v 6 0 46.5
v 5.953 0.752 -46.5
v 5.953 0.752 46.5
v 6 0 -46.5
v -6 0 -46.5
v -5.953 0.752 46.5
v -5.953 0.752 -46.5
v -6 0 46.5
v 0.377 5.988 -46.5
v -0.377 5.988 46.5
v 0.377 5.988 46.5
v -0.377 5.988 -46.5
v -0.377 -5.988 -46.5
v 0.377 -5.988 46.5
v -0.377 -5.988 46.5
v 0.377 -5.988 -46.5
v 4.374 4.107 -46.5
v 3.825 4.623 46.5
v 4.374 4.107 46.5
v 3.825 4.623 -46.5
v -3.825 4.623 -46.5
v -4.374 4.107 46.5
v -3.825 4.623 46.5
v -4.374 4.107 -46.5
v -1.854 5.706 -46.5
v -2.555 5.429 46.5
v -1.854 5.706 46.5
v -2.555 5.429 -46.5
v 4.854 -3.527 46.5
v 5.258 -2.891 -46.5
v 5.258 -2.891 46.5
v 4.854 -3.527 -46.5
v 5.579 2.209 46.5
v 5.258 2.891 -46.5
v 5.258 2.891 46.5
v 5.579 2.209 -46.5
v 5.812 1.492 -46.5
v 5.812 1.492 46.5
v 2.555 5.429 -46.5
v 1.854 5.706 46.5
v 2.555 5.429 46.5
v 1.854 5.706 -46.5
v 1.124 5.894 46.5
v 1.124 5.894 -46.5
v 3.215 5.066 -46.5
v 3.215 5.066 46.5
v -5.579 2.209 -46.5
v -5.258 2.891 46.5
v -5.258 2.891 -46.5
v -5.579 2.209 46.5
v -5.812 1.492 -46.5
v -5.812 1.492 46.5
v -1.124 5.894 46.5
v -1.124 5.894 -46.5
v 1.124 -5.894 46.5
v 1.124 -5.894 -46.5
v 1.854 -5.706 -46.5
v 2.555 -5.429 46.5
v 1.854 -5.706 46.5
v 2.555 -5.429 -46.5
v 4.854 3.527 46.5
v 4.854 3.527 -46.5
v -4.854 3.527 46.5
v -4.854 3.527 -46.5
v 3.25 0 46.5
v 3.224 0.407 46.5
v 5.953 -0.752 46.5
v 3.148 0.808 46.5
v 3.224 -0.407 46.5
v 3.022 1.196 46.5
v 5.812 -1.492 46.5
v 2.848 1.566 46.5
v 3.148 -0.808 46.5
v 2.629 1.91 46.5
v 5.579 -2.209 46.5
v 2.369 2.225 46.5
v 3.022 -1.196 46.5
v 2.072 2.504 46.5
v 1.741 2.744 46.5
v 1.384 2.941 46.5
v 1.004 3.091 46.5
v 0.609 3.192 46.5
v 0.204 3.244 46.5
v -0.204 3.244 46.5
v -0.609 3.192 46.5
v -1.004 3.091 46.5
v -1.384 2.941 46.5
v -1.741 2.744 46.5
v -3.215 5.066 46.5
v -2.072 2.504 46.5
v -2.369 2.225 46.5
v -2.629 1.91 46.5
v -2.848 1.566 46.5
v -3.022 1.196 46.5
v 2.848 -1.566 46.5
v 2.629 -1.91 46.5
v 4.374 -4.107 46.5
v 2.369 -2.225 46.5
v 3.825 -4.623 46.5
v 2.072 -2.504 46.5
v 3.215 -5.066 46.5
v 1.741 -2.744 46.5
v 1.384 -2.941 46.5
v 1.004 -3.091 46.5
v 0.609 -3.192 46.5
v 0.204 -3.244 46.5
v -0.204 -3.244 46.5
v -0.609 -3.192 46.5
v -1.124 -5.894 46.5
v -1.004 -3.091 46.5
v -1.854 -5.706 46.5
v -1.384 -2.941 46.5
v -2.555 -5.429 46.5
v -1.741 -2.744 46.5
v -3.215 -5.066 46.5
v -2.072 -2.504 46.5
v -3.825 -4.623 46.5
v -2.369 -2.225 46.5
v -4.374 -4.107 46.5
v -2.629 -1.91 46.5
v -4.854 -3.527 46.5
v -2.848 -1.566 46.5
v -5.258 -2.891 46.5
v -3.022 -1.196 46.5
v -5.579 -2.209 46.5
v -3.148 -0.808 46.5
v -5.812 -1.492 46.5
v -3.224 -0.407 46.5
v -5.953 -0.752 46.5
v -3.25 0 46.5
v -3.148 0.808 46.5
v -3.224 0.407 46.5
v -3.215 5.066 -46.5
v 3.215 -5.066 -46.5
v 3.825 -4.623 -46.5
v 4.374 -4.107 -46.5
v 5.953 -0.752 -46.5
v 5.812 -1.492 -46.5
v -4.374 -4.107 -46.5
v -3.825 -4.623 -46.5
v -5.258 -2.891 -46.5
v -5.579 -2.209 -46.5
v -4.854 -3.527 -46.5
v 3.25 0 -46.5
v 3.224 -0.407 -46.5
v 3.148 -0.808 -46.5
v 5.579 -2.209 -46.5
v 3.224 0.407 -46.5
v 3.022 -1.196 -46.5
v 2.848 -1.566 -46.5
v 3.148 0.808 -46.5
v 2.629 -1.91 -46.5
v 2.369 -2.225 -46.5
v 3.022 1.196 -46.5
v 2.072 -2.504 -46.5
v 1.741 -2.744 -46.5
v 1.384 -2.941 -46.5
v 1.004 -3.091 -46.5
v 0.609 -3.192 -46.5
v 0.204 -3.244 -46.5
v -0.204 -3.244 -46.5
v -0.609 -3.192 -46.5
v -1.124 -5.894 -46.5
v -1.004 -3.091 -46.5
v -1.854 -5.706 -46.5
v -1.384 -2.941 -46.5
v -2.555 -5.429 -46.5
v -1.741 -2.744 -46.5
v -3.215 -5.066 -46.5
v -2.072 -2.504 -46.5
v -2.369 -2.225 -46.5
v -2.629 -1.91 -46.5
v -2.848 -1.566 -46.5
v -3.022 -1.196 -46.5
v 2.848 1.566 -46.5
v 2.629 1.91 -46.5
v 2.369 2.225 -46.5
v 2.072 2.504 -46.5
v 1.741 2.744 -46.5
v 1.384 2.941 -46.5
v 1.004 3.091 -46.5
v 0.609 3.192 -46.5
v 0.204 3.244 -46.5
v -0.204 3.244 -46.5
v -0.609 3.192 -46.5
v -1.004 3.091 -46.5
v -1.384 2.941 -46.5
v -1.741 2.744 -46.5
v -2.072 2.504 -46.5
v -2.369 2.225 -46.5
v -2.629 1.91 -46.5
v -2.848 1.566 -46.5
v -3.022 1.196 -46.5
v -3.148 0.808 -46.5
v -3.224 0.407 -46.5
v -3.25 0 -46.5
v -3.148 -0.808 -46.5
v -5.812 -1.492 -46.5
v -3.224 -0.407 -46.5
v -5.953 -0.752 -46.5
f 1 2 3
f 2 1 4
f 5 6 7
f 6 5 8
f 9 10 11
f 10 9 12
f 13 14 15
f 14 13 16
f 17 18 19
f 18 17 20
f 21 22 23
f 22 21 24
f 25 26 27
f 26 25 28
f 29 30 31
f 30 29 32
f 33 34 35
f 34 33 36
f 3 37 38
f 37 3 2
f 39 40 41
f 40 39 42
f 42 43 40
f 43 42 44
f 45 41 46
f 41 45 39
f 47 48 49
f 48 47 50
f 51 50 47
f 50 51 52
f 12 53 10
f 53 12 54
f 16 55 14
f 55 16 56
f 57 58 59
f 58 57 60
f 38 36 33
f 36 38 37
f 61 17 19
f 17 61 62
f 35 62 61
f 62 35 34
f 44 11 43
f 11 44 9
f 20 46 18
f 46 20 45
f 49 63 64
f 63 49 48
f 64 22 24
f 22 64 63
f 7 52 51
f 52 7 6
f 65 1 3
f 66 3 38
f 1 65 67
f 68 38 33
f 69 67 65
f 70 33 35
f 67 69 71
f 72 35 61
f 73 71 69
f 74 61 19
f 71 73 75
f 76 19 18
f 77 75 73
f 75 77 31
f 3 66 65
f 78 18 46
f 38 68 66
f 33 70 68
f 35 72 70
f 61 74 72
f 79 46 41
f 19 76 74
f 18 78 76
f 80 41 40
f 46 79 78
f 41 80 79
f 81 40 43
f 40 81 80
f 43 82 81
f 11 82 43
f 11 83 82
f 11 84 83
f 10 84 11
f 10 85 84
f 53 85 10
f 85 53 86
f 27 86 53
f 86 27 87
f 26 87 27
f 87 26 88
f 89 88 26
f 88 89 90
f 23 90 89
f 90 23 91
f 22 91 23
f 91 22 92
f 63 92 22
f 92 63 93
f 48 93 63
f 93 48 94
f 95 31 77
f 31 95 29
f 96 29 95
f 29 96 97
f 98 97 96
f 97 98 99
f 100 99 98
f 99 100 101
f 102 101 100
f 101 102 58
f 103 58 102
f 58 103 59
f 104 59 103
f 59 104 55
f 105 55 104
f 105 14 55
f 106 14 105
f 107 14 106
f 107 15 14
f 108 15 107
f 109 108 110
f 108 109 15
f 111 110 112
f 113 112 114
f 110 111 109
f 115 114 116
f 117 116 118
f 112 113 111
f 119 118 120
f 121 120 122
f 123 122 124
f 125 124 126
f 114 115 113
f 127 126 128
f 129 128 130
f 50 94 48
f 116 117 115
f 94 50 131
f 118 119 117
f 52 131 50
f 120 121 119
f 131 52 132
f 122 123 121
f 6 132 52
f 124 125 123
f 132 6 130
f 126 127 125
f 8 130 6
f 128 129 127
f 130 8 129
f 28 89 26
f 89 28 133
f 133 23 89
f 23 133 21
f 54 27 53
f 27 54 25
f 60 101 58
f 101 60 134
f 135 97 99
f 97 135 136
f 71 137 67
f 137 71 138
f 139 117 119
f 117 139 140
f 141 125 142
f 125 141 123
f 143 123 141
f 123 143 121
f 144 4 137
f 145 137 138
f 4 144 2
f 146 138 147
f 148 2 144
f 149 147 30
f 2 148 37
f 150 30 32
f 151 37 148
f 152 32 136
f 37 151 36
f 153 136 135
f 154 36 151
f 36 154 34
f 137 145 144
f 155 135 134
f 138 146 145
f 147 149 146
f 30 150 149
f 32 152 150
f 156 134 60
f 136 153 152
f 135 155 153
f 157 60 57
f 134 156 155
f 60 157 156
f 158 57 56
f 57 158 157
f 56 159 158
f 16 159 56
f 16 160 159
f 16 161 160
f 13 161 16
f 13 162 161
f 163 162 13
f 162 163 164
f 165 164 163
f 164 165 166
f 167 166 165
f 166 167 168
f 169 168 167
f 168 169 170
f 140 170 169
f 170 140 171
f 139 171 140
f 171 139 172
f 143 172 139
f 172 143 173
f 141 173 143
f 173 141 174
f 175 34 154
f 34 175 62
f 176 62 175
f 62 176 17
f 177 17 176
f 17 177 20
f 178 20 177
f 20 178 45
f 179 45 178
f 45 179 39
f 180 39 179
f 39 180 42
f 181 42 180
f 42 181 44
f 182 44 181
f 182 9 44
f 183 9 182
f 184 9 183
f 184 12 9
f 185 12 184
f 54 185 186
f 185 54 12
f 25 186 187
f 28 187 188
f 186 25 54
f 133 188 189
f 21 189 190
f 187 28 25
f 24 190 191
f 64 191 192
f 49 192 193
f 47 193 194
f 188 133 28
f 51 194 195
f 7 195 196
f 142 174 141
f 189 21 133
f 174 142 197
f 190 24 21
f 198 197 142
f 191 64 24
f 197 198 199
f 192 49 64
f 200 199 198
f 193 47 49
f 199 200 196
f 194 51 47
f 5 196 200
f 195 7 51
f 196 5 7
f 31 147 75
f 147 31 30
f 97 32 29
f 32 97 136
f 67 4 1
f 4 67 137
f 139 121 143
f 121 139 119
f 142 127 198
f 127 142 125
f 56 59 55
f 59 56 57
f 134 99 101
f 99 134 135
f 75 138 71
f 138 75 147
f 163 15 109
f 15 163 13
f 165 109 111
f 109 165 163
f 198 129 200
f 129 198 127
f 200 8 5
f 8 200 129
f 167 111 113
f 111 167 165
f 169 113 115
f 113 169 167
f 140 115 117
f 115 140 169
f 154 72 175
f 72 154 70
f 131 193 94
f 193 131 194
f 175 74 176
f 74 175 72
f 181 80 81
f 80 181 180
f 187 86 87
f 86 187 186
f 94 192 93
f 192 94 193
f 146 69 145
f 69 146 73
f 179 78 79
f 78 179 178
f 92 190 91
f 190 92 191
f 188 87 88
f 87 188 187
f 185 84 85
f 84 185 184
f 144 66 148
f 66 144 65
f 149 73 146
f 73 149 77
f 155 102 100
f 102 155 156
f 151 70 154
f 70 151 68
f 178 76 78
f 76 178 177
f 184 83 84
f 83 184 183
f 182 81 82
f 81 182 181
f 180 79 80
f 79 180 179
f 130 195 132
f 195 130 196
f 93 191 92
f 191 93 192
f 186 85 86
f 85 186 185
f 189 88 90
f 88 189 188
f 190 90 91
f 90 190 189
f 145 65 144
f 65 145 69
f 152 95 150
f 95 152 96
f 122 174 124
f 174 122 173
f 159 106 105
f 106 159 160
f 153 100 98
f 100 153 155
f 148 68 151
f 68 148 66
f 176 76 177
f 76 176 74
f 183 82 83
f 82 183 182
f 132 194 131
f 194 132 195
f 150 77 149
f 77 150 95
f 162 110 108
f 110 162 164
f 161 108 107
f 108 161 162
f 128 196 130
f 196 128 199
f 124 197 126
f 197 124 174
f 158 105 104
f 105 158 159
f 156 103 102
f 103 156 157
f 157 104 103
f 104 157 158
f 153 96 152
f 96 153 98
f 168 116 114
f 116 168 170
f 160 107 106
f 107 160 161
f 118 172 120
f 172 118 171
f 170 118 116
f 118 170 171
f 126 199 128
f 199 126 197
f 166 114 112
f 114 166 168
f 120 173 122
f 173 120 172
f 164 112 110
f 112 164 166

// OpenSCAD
$fn = 50;


difference() {
	union() {
		translate(v = [0, 0, -46.5000000000]) {
			cylinder(h = 93, r = 6.0000000000);
		}
	}
	union() {
		translate(v = [0, 0, -100.0000000000]) {
			cylinder(h = 200, r = 3.2500000000);
		}
	}
}
